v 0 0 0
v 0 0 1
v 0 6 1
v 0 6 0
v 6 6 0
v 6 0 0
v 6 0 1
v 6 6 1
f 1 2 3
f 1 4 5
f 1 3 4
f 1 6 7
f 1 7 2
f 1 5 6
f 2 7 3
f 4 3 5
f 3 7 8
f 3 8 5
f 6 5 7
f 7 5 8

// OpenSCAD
/* Warning, this is a very basic generator with a lot of approximation 
input data : [VQFN, 2FX, 6x6x1.0mm, 40, , A, C04-00297A]
generated by com.zoubworld.electronics.cad.model3d.Basic
Date : Sun Feb 15 10:50:48 CET 2026
*/

//body
color("black")
translate([0,0,0])
cube([6.0,6.0,1.0], center=false);
